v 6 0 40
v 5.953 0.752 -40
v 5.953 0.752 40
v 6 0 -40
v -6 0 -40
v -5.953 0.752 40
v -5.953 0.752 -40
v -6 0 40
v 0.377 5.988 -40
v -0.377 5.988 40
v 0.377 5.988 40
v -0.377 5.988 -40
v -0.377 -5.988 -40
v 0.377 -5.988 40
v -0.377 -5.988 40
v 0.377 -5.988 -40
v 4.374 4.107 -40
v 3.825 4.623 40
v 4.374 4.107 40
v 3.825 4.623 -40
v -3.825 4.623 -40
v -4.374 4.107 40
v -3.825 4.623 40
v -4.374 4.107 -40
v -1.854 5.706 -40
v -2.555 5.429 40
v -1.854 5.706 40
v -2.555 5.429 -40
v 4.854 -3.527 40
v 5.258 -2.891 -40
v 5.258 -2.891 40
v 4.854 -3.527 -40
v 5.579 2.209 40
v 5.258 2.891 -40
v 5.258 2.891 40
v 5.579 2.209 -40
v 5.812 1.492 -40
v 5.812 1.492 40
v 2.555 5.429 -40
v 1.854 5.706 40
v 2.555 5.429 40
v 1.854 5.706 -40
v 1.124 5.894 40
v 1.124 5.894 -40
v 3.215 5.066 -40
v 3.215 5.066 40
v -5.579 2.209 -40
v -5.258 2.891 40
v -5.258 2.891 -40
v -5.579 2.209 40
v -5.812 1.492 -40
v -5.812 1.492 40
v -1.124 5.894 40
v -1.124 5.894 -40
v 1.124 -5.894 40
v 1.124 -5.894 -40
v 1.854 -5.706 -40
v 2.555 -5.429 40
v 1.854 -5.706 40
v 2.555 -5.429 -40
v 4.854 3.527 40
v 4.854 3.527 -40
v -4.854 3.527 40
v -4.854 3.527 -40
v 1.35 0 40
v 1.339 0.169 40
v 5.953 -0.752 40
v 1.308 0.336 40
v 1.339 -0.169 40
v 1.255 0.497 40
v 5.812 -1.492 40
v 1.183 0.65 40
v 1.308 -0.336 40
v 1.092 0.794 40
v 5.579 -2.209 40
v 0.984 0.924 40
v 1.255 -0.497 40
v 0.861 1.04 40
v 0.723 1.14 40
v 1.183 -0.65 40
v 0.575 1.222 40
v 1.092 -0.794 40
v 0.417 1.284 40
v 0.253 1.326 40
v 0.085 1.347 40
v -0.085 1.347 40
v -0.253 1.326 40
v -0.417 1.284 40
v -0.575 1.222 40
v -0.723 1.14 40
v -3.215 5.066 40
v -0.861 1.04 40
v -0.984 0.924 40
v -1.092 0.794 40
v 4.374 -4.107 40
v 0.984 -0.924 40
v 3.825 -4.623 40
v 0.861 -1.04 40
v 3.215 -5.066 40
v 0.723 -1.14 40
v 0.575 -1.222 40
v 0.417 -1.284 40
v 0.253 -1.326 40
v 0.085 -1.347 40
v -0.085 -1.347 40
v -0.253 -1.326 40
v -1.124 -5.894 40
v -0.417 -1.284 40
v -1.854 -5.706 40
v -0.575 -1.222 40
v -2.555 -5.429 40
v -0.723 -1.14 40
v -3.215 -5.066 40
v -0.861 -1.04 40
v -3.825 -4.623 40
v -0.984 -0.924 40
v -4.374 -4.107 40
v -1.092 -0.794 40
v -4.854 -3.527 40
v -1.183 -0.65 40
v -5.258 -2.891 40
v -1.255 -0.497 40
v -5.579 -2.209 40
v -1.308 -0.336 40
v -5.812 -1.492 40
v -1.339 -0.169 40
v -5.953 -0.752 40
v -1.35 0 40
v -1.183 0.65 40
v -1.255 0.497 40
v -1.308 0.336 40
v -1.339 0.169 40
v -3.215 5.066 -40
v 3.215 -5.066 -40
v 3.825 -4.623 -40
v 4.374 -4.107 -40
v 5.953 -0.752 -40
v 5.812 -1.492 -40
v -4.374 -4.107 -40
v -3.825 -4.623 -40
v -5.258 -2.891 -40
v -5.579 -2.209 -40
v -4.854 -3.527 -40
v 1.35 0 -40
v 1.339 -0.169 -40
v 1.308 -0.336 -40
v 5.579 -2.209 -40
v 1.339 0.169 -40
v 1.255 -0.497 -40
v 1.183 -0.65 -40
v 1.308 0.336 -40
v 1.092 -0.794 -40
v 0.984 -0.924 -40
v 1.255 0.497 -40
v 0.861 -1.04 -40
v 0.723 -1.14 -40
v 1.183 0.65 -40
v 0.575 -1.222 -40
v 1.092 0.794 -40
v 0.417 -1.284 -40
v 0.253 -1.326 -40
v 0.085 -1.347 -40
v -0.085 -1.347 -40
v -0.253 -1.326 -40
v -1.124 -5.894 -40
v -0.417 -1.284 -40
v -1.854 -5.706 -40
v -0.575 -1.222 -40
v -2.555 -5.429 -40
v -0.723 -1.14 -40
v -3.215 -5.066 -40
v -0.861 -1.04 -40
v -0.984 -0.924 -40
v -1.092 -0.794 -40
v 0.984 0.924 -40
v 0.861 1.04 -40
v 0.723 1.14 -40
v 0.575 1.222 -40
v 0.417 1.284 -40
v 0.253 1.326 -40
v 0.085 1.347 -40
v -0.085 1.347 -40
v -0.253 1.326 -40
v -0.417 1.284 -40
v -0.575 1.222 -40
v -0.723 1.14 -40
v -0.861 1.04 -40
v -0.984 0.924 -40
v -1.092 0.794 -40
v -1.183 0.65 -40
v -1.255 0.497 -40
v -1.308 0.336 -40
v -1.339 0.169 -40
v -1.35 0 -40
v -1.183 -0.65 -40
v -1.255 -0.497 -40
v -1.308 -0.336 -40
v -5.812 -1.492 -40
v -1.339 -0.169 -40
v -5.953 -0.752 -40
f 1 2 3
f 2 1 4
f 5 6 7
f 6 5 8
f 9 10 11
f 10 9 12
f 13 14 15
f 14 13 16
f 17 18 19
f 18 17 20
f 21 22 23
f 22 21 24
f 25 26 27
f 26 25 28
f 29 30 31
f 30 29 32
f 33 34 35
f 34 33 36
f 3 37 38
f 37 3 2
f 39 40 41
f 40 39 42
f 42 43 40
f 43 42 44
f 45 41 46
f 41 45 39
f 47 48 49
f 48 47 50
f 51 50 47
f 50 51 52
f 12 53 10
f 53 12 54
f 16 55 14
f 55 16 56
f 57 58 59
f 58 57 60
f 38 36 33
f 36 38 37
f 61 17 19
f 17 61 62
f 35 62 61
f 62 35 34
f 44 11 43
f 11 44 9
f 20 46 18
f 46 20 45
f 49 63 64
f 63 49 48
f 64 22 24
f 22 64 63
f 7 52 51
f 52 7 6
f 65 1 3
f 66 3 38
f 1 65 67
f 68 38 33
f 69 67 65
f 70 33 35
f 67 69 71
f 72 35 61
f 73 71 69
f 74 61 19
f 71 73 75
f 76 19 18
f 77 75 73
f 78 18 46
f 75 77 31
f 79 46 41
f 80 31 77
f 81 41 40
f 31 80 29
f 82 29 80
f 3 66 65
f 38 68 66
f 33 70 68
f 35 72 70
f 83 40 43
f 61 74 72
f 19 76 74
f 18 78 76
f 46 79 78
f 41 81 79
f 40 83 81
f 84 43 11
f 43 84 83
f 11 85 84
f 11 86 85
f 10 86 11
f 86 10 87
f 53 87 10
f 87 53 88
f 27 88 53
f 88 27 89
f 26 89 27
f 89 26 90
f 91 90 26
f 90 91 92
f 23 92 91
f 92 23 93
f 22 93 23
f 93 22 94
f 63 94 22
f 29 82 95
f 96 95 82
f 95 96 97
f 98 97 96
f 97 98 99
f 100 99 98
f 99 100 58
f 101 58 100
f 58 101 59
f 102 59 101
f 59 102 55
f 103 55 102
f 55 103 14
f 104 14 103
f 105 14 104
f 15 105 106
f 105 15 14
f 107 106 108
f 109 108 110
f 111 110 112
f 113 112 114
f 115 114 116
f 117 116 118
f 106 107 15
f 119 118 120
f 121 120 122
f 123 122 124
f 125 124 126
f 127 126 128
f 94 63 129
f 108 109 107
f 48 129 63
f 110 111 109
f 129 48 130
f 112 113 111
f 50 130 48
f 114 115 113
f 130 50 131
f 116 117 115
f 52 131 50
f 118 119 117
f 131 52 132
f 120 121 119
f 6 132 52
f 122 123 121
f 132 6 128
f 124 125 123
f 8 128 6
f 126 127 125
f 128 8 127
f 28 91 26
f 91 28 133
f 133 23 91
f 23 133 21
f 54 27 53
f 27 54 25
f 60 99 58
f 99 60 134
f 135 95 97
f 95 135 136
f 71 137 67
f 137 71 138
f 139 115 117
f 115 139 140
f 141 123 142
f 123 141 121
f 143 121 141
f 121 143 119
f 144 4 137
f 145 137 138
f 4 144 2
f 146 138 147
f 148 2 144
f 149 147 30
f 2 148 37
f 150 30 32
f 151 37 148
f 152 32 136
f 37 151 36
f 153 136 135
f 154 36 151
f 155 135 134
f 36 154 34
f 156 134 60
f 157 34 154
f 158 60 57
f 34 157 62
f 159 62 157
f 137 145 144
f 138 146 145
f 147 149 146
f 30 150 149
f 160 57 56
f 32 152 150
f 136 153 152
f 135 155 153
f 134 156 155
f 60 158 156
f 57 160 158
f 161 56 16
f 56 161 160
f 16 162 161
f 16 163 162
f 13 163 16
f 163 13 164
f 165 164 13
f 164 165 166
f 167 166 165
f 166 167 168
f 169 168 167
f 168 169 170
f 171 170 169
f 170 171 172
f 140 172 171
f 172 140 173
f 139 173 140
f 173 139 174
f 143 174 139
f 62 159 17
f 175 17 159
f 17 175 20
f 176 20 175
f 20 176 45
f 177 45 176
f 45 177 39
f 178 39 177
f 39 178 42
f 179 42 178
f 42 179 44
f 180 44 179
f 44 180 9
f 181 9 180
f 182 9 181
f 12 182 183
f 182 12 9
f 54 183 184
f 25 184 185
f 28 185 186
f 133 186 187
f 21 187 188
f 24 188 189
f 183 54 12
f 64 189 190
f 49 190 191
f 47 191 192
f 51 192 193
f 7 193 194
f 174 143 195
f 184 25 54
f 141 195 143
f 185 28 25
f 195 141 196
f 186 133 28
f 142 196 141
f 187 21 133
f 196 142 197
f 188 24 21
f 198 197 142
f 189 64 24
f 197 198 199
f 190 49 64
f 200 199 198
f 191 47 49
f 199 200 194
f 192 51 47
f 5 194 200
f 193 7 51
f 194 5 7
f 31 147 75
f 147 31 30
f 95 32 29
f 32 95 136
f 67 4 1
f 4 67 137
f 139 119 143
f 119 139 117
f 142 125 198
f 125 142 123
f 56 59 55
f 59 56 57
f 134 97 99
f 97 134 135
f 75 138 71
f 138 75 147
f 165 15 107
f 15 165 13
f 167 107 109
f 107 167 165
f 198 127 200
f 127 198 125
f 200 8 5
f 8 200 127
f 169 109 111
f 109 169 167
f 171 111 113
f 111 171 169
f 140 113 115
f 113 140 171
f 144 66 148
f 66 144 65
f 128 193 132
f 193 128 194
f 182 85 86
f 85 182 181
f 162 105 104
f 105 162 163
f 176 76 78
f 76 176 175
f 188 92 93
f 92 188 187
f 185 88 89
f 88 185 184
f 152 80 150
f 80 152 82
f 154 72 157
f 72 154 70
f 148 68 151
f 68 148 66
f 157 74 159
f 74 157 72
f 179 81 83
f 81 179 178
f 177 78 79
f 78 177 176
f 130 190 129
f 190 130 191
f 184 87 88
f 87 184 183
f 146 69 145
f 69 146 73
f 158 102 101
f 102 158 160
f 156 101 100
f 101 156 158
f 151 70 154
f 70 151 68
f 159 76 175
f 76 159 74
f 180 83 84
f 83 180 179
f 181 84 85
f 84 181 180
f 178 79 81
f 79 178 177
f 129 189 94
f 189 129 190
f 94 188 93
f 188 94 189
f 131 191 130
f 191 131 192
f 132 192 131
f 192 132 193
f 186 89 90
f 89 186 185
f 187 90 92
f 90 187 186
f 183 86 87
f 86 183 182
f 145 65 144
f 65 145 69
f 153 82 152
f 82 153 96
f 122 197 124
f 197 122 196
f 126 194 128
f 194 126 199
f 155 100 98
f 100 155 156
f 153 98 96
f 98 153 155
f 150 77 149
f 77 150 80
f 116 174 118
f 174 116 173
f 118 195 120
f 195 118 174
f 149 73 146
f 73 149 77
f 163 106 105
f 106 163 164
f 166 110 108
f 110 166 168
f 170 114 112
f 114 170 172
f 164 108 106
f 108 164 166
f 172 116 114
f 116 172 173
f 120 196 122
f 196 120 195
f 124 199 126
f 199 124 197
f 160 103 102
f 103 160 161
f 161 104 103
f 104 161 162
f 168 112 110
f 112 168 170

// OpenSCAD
$fn = 50;


difference() {
	union() {
		translate(v = [0, 0, -40.0000000000]) {
			cylinder(h = 80, r = 6.0000000000);
		}
	}
	union() {
		translate(v = [0, 0, -100.0000000000]) {
			cylinder(h = 200, r = 1.3500000000);
		}
	}
}
